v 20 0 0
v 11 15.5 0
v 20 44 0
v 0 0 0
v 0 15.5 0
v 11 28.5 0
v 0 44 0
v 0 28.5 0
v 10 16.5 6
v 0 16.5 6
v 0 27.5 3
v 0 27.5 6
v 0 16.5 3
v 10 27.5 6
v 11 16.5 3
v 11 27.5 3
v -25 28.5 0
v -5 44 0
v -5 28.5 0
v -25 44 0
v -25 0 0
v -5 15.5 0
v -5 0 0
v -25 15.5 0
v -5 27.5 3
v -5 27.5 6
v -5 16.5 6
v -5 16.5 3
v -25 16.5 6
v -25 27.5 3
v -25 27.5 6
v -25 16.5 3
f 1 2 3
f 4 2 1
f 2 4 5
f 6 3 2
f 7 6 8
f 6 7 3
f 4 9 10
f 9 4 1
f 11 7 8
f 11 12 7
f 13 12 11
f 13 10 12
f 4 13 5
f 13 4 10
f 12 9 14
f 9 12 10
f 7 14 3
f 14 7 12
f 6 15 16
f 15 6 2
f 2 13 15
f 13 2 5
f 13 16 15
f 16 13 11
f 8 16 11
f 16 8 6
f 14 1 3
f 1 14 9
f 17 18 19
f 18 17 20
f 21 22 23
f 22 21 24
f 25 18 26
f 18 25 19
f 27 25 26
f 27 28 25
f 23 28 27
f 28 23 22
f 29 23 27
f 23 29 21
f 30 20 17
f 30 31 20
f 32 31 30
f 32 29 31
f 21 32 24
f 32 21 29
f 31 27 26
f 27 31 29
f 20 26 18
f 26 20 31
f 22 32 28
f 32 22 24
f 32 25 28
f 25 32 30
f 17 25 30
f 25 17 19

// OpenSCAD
module prism(l, w, h){
    polyhedron(
        points=[[0,0,0], [l,0,0], [l,w,0], [0,w,0], [0,w,h], [l,w,h]],
        faces=[[0,1,2,3],[5,4,3,2],[0,4,5,1],[0,3,4],[5,2,1]]
    );
}

module trapezoid(l, w, h, space) {
    union() {
        prism(l, w, h);
        translate([0,w,0])
            cube([l, space, h]);
        translate([0, w*2 + space,0])
            mirror([0, 1, 0])
                prism(l, w, h);
    }
}

module led_shield(l, w, h, space, inner_space, inner_len = 1.0) {
    border = 1;
    difference() {
        trapezoid(l, w, h, space);
        translate([0, (w+space/2) - (border + inner_space/2),0])
            trapezoid(l*inner_len, border, h * 0.5, inner_space);
    }
}

module led_shield_end(l, w, h, space, inner_space) {
    cut_length = l * 0.5;
    cut_width = w * 2.0 + space;

    difference() {
        led_shield(l, w, h, space, inner_space, 0.55);
        rotate([0, 180, -90])
            translate([0, cut_length,-h])
                prism(cut_width, cut_length, h);
    }
}

translate([-25, 0, 0])
    led_shield(20, 16.50, 6, 11, 11);

led_shield_end(20, 16.50, 6, 11, 11);
